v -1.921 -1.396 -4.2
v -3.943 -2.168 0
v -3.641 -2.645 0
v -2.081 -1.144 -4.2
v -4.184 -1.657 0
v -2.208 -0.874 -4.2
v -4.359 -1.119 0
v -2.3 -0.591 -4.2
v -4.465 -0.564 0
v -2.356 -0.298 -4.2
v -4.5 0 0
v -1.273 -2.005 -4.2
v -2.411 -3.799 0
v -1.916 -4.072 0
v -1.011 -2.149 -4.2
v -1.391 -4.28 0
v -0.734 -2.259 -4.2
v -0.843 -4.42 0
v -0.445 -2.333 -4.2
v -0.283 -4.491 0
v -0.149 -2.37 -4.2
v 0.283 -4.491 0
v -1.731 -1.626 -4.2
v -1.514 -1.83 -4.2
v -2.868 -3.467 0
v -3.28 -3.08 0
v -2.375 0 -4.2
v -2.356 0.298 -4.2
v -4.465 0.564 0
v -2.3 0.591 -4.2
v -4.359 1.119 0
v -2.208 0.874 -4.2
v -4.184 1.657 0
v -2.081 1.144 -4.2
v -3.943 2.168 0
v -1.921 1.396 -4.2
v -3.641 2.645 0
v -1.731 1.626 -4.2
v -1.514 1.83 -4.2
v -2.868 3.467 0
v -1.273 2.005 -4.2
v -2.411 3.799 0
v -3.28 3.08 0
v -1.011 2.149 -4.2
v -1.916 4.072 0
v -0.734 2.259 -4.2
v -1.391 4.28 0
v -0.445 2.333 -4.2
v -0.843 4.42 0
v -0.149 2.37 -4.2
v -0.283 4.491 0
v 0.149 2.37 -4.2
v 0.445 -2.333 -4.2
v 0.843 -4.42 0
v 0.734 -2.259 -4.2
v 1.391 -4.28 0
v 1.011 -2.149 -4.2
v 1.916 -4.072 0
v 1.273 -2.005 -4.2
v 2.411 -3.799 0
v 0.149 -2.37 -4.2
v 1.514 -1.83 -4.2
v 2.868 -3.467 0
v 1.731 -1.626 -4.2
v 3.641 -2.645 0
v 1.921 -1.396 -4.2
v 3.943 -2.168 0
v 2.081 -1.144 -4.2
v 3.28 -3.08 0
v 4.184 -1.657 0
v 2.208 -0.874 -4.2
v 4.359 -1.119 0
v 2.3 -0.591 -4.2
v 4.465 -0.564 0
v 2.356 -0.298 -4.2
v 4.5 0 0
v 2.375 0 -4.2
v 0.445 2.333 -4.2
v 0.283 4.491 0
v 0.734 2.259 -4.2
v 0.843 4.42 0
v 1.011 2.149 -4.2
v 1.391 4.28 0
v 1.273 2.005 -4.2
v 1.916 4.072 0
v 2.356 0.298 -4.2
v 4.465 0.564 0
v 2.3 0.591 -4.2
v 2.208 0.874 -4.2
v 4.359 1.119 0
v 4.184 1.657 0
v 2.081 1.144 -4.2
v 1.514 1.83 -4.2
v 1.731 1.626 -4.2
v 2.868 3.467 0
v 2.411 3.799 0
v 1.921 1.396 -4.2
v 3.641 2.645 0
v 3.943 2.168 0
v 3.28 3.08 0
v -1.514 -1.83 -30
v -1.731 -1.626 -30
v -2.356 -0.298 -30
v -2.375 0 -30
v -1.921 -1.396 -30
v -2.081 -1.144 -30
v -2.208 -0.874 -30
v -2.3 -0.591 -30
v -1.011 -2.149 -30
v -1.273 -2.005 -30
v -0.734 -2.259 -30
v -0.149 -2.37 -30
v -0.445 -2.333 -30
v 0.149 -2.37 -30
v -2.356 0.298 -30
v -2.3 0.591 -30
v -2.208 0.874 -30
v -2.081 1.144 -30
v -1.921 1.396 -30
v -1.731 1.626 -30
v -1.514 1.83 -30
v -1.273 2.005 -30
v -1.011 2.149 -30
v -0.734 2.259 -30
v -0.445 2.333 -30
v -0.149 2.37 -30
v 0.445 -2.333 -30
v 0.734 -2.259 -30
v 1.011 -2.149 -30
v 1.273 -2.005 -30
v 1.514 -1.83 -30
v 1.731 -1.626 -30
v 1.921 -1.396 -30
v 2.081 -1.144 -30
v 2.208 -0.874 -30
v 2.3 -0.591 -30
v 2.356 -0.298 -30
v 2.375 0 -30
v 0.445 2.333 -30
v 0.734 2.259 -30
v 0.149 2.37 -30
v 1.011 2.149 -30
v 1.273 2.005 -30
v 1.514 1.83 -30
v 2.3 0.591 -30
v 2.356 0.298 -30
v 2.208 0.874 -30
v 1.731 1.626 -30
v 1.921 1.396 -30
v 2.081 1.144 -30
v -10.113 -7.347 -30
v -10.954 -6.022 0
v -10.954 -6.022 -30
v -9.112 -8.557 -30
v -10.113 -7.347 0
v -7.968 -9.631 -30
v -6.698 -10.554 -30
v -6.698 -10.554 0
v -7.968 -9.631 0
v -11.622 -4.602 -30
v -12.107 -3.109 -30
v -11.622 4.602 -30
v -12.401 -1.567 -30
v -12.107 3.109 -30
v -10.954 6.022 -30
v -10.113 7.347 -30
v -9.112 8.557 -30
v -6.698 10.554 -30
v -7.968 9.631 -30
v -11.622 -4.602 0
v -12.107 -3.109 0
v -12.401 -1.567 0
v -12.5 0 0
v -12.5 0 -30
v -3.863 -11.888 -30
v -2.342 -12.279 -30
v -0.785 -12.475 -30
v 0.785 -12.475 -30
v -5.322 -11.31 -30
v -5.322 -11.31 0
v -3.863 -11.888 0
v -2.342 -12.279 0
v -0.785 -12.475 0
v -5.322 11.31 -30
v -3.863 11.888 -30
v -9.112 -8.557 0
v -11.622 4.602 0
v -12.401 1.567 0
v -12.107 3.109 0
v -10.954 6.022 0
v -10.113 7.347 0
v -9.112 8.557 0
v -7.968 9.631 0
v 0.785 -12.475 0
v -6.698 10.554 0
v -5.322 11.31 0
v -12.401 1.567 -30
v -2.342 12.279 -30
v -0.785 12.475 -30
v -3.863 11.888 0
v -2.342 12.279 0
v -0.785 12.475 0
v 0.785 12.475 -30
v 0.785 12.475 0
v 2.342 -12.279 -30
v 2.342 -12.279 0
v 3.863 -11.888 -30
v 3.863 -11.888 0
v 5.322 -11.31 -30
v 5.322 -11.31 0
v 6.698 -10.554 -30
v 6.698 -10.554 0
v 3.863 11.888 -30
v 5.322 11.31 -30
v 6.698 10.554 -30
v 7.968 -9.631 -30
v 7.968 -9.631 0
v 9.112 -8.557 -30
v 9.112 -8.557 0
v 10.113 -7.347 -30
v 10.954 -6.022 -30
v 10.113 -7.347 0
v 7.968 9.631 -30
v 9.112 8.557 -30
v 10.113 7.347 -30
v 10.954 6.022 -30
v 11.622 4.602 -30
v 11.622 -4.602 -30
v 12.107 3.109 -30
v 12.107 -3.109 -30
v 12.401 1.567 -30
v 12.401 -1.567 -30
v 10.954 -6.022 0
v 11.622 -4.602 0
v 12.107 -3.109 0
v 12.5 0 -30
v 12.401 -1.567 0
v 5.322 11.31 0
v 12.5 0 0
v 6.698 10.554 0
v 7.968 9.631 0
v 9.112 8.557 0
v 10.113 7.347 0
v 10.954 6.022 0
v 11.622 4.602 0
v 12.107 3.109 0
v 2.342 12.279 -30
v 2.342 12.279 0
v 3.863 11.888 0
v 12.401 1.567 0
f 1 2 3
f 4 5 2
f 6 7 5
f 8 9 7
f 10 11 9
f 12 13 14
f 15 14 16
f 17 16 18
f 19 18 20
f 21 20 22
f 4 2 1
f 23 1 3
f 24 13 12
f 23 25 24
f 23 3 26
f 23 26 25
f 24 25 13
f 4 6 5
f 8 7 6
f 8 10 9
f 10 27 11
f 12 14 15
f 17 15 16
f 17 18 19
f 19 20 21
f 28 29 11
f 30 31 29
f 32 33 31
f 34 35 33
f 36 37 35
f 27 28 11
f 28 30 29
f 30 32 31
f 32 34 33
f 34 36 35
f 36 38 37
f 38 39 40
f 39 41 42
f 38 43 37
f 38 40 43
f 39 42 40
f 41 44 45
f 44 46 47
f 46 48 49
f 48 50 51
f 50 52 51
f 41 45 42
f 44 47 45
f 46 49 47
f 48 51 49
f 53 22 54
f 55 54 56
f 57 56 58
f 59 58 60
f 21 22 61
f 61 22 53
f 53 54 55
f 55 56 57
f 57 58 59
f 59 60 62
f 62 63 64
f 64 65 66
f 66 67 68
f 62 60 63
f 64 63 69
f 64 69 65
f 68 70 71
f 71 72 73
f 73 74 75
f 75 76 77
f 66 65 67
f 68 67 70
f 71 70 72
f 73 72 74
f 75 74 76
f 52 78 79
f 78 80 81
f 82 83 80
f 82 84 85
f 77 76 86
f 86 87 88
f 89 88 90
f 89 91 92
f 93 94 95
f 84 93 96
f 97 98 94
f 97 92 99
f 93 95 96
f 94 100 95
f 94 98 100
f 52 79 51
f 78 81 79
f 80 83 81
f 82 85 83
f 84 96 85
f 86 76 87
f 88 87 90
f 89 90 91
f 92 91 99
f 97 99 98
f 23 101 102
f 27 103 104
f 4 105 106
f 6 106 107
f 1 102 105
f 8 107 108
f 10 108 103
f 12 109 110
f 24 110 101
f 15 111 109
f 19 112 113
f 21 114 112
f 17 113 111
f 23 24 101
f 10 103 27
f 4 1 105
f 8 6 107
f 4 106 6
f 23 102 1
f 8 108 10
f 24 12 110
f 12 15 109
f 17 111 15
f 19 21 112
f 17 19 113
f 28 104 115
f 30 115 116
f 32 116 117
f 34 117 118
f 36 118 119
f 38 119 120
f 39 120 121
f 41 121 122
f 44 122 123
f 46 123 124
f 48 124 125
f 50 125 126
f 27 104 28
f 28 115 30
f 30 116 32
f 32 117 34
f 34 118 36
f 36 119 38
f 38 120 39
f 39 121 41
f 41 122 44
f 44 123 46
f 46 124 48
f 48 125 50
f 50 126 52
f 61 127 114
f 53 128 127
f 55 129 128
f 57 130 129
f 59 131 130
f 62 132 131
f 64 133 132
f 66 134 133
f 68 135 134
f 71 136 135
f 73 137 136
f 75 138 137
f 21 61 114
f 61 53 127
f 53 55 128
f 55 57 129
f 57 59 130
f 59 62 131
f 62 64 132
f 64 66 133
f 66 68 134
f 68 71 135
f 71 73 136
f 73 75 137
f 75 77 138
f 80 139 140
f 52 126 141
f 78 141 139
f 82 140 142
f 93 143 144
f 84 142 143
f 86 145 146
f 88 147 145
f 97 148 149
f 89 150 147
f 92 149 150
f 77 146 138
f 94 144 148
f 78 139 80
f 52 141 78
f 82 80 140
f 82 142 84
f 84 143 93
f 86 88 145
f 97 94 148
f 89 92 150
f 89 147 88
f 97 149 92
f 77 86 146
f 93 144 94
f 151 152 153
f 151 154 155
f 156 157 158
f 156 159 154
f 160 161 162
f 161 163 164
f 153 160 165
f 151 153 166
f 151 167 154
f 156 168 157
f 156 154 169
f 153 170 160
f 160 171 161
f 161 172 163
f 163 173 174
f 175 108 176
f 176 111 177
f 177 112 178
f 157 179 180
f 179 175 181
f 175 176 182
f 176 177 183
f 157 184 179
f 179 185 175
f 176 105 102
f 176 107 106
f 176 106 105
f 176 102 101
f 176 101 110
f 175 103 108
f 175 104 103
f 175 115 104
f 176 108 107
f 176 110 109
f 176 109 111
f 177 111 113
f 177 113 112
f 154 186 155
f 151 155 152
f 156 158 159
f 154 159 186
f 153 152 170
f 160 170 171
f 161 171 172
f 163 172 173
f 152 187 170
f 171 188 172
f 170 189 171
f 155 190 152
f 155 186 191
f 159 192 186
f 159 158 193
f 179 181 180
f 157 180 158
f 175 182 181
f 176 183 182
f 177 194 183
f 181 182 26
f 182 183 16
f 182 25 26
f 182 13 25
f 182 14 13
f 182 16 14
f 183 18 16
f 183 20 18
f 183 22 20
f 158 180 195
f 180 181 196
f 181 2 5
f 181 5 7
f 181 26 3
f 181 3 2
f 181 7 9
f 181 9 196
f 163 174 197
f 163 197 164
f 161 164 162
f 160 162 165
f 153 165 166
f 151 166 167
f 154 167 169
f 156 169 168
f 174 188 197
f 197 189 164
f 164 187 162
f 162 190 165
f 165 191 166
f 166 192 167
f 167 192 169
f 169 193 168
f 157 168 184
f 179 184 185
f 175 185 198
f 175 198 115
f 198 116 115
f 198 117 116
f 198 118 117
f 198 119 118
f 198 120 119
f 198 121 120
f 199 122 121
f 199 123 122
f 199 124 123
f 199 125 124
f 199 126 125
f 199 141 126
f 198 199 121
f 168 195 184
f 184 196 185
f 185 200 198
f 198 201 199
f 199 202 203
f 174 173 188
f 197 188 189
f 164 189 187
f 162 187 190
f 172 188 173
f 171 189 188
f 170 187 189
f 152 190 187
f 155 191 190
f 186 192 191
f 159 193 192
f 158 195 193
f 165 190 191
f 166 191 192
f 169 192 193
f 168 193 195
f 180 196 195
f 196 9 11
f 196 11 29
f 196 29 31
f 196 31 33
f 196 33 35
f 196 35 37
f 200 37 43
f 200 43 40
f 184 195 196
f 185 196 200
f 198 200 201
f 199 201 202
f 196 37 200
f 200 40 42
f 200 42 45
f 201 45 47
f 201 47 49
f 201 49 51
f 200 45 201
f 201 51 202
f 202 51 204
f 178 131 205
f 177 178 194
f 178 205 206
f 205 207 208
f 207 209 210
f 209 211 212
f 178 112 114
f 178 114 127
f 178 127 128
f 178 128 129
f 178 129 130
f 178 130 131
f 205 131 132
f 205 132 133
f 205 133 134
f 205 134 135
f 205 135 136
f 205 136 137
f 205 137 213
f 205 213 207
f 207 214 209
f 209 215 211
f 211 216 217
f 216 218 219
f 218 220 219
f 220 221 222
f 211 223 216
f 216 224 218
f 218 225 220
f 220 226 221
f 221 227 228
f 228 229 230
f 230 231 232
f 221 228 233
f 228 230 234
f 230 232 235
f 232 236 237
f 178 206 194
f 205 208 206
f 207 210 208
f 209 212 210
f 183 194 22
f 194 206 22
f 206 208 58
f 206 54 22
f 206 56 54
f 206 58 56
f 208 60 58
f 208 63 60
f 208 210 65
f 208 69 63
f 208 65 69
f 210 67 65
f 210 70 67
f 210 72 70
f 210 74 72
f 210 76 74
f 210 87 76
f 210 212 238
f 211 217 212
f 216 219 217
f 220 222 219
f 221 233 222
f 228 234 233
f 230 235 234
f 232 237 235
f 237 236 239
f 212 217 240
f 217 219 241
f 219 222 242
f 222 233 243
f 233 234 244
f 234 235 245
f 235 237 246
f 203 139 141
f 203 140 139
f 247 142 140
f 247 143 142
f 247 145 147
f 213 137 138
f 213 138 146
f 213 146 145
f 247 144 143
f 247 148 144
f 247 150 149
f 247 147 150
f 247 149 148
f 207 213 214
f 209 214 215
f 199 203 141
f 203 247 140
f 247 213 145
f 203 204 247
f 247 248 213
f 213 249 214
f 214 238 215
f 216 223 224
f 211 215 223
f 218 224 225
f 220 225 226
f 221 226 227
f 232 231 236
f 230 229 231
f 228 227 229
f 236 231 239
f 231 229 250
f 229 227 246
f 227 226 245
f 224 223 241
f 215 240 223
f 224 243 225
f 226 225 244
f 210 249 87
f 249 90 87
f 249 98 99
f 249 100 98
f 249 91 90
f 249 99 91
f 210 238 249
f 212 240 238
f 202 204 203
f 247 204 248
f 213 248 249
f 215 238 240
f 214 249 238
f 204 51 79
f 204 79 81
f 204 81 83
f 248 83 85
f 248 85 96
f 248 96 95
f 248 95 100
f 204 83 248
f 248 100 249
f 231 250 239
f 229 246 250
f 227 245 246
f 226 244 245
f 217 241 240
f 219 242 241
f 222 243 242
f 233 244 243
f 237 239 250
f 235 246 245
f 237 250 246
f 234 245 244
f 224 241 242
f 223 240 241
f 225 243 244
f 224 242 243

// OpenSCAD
$fn = 50;

difference() {
	union() {
		translate(v = [0, 0, -30.0]) {
			cylinder(h = 30, r = 12.5);
		}
	}
	union() {
		translate(v = [0, 0, 0]) {
			rotate(a = [0, 0, 0]) {
				difference() {
					union() {
						translate(v = [0, 0, -33.0]) {
							cylinder(h = 33, r = 2.25);
						}
						translate(v = [0, 0, -4.2]) {
							cylinder(h = 4.2, r1 = 2.375, r2 = 4.5);
						}
						translate(v = [0, 0, -33.0]) {
							cylinder(h = 33, r = 2.375);
						}
						translate(v = [0, 0, -33.0]) {
							cylinder(h = 33, r = 2.25);
						}
					}
					union();
				}
			}
		}
	}
}
